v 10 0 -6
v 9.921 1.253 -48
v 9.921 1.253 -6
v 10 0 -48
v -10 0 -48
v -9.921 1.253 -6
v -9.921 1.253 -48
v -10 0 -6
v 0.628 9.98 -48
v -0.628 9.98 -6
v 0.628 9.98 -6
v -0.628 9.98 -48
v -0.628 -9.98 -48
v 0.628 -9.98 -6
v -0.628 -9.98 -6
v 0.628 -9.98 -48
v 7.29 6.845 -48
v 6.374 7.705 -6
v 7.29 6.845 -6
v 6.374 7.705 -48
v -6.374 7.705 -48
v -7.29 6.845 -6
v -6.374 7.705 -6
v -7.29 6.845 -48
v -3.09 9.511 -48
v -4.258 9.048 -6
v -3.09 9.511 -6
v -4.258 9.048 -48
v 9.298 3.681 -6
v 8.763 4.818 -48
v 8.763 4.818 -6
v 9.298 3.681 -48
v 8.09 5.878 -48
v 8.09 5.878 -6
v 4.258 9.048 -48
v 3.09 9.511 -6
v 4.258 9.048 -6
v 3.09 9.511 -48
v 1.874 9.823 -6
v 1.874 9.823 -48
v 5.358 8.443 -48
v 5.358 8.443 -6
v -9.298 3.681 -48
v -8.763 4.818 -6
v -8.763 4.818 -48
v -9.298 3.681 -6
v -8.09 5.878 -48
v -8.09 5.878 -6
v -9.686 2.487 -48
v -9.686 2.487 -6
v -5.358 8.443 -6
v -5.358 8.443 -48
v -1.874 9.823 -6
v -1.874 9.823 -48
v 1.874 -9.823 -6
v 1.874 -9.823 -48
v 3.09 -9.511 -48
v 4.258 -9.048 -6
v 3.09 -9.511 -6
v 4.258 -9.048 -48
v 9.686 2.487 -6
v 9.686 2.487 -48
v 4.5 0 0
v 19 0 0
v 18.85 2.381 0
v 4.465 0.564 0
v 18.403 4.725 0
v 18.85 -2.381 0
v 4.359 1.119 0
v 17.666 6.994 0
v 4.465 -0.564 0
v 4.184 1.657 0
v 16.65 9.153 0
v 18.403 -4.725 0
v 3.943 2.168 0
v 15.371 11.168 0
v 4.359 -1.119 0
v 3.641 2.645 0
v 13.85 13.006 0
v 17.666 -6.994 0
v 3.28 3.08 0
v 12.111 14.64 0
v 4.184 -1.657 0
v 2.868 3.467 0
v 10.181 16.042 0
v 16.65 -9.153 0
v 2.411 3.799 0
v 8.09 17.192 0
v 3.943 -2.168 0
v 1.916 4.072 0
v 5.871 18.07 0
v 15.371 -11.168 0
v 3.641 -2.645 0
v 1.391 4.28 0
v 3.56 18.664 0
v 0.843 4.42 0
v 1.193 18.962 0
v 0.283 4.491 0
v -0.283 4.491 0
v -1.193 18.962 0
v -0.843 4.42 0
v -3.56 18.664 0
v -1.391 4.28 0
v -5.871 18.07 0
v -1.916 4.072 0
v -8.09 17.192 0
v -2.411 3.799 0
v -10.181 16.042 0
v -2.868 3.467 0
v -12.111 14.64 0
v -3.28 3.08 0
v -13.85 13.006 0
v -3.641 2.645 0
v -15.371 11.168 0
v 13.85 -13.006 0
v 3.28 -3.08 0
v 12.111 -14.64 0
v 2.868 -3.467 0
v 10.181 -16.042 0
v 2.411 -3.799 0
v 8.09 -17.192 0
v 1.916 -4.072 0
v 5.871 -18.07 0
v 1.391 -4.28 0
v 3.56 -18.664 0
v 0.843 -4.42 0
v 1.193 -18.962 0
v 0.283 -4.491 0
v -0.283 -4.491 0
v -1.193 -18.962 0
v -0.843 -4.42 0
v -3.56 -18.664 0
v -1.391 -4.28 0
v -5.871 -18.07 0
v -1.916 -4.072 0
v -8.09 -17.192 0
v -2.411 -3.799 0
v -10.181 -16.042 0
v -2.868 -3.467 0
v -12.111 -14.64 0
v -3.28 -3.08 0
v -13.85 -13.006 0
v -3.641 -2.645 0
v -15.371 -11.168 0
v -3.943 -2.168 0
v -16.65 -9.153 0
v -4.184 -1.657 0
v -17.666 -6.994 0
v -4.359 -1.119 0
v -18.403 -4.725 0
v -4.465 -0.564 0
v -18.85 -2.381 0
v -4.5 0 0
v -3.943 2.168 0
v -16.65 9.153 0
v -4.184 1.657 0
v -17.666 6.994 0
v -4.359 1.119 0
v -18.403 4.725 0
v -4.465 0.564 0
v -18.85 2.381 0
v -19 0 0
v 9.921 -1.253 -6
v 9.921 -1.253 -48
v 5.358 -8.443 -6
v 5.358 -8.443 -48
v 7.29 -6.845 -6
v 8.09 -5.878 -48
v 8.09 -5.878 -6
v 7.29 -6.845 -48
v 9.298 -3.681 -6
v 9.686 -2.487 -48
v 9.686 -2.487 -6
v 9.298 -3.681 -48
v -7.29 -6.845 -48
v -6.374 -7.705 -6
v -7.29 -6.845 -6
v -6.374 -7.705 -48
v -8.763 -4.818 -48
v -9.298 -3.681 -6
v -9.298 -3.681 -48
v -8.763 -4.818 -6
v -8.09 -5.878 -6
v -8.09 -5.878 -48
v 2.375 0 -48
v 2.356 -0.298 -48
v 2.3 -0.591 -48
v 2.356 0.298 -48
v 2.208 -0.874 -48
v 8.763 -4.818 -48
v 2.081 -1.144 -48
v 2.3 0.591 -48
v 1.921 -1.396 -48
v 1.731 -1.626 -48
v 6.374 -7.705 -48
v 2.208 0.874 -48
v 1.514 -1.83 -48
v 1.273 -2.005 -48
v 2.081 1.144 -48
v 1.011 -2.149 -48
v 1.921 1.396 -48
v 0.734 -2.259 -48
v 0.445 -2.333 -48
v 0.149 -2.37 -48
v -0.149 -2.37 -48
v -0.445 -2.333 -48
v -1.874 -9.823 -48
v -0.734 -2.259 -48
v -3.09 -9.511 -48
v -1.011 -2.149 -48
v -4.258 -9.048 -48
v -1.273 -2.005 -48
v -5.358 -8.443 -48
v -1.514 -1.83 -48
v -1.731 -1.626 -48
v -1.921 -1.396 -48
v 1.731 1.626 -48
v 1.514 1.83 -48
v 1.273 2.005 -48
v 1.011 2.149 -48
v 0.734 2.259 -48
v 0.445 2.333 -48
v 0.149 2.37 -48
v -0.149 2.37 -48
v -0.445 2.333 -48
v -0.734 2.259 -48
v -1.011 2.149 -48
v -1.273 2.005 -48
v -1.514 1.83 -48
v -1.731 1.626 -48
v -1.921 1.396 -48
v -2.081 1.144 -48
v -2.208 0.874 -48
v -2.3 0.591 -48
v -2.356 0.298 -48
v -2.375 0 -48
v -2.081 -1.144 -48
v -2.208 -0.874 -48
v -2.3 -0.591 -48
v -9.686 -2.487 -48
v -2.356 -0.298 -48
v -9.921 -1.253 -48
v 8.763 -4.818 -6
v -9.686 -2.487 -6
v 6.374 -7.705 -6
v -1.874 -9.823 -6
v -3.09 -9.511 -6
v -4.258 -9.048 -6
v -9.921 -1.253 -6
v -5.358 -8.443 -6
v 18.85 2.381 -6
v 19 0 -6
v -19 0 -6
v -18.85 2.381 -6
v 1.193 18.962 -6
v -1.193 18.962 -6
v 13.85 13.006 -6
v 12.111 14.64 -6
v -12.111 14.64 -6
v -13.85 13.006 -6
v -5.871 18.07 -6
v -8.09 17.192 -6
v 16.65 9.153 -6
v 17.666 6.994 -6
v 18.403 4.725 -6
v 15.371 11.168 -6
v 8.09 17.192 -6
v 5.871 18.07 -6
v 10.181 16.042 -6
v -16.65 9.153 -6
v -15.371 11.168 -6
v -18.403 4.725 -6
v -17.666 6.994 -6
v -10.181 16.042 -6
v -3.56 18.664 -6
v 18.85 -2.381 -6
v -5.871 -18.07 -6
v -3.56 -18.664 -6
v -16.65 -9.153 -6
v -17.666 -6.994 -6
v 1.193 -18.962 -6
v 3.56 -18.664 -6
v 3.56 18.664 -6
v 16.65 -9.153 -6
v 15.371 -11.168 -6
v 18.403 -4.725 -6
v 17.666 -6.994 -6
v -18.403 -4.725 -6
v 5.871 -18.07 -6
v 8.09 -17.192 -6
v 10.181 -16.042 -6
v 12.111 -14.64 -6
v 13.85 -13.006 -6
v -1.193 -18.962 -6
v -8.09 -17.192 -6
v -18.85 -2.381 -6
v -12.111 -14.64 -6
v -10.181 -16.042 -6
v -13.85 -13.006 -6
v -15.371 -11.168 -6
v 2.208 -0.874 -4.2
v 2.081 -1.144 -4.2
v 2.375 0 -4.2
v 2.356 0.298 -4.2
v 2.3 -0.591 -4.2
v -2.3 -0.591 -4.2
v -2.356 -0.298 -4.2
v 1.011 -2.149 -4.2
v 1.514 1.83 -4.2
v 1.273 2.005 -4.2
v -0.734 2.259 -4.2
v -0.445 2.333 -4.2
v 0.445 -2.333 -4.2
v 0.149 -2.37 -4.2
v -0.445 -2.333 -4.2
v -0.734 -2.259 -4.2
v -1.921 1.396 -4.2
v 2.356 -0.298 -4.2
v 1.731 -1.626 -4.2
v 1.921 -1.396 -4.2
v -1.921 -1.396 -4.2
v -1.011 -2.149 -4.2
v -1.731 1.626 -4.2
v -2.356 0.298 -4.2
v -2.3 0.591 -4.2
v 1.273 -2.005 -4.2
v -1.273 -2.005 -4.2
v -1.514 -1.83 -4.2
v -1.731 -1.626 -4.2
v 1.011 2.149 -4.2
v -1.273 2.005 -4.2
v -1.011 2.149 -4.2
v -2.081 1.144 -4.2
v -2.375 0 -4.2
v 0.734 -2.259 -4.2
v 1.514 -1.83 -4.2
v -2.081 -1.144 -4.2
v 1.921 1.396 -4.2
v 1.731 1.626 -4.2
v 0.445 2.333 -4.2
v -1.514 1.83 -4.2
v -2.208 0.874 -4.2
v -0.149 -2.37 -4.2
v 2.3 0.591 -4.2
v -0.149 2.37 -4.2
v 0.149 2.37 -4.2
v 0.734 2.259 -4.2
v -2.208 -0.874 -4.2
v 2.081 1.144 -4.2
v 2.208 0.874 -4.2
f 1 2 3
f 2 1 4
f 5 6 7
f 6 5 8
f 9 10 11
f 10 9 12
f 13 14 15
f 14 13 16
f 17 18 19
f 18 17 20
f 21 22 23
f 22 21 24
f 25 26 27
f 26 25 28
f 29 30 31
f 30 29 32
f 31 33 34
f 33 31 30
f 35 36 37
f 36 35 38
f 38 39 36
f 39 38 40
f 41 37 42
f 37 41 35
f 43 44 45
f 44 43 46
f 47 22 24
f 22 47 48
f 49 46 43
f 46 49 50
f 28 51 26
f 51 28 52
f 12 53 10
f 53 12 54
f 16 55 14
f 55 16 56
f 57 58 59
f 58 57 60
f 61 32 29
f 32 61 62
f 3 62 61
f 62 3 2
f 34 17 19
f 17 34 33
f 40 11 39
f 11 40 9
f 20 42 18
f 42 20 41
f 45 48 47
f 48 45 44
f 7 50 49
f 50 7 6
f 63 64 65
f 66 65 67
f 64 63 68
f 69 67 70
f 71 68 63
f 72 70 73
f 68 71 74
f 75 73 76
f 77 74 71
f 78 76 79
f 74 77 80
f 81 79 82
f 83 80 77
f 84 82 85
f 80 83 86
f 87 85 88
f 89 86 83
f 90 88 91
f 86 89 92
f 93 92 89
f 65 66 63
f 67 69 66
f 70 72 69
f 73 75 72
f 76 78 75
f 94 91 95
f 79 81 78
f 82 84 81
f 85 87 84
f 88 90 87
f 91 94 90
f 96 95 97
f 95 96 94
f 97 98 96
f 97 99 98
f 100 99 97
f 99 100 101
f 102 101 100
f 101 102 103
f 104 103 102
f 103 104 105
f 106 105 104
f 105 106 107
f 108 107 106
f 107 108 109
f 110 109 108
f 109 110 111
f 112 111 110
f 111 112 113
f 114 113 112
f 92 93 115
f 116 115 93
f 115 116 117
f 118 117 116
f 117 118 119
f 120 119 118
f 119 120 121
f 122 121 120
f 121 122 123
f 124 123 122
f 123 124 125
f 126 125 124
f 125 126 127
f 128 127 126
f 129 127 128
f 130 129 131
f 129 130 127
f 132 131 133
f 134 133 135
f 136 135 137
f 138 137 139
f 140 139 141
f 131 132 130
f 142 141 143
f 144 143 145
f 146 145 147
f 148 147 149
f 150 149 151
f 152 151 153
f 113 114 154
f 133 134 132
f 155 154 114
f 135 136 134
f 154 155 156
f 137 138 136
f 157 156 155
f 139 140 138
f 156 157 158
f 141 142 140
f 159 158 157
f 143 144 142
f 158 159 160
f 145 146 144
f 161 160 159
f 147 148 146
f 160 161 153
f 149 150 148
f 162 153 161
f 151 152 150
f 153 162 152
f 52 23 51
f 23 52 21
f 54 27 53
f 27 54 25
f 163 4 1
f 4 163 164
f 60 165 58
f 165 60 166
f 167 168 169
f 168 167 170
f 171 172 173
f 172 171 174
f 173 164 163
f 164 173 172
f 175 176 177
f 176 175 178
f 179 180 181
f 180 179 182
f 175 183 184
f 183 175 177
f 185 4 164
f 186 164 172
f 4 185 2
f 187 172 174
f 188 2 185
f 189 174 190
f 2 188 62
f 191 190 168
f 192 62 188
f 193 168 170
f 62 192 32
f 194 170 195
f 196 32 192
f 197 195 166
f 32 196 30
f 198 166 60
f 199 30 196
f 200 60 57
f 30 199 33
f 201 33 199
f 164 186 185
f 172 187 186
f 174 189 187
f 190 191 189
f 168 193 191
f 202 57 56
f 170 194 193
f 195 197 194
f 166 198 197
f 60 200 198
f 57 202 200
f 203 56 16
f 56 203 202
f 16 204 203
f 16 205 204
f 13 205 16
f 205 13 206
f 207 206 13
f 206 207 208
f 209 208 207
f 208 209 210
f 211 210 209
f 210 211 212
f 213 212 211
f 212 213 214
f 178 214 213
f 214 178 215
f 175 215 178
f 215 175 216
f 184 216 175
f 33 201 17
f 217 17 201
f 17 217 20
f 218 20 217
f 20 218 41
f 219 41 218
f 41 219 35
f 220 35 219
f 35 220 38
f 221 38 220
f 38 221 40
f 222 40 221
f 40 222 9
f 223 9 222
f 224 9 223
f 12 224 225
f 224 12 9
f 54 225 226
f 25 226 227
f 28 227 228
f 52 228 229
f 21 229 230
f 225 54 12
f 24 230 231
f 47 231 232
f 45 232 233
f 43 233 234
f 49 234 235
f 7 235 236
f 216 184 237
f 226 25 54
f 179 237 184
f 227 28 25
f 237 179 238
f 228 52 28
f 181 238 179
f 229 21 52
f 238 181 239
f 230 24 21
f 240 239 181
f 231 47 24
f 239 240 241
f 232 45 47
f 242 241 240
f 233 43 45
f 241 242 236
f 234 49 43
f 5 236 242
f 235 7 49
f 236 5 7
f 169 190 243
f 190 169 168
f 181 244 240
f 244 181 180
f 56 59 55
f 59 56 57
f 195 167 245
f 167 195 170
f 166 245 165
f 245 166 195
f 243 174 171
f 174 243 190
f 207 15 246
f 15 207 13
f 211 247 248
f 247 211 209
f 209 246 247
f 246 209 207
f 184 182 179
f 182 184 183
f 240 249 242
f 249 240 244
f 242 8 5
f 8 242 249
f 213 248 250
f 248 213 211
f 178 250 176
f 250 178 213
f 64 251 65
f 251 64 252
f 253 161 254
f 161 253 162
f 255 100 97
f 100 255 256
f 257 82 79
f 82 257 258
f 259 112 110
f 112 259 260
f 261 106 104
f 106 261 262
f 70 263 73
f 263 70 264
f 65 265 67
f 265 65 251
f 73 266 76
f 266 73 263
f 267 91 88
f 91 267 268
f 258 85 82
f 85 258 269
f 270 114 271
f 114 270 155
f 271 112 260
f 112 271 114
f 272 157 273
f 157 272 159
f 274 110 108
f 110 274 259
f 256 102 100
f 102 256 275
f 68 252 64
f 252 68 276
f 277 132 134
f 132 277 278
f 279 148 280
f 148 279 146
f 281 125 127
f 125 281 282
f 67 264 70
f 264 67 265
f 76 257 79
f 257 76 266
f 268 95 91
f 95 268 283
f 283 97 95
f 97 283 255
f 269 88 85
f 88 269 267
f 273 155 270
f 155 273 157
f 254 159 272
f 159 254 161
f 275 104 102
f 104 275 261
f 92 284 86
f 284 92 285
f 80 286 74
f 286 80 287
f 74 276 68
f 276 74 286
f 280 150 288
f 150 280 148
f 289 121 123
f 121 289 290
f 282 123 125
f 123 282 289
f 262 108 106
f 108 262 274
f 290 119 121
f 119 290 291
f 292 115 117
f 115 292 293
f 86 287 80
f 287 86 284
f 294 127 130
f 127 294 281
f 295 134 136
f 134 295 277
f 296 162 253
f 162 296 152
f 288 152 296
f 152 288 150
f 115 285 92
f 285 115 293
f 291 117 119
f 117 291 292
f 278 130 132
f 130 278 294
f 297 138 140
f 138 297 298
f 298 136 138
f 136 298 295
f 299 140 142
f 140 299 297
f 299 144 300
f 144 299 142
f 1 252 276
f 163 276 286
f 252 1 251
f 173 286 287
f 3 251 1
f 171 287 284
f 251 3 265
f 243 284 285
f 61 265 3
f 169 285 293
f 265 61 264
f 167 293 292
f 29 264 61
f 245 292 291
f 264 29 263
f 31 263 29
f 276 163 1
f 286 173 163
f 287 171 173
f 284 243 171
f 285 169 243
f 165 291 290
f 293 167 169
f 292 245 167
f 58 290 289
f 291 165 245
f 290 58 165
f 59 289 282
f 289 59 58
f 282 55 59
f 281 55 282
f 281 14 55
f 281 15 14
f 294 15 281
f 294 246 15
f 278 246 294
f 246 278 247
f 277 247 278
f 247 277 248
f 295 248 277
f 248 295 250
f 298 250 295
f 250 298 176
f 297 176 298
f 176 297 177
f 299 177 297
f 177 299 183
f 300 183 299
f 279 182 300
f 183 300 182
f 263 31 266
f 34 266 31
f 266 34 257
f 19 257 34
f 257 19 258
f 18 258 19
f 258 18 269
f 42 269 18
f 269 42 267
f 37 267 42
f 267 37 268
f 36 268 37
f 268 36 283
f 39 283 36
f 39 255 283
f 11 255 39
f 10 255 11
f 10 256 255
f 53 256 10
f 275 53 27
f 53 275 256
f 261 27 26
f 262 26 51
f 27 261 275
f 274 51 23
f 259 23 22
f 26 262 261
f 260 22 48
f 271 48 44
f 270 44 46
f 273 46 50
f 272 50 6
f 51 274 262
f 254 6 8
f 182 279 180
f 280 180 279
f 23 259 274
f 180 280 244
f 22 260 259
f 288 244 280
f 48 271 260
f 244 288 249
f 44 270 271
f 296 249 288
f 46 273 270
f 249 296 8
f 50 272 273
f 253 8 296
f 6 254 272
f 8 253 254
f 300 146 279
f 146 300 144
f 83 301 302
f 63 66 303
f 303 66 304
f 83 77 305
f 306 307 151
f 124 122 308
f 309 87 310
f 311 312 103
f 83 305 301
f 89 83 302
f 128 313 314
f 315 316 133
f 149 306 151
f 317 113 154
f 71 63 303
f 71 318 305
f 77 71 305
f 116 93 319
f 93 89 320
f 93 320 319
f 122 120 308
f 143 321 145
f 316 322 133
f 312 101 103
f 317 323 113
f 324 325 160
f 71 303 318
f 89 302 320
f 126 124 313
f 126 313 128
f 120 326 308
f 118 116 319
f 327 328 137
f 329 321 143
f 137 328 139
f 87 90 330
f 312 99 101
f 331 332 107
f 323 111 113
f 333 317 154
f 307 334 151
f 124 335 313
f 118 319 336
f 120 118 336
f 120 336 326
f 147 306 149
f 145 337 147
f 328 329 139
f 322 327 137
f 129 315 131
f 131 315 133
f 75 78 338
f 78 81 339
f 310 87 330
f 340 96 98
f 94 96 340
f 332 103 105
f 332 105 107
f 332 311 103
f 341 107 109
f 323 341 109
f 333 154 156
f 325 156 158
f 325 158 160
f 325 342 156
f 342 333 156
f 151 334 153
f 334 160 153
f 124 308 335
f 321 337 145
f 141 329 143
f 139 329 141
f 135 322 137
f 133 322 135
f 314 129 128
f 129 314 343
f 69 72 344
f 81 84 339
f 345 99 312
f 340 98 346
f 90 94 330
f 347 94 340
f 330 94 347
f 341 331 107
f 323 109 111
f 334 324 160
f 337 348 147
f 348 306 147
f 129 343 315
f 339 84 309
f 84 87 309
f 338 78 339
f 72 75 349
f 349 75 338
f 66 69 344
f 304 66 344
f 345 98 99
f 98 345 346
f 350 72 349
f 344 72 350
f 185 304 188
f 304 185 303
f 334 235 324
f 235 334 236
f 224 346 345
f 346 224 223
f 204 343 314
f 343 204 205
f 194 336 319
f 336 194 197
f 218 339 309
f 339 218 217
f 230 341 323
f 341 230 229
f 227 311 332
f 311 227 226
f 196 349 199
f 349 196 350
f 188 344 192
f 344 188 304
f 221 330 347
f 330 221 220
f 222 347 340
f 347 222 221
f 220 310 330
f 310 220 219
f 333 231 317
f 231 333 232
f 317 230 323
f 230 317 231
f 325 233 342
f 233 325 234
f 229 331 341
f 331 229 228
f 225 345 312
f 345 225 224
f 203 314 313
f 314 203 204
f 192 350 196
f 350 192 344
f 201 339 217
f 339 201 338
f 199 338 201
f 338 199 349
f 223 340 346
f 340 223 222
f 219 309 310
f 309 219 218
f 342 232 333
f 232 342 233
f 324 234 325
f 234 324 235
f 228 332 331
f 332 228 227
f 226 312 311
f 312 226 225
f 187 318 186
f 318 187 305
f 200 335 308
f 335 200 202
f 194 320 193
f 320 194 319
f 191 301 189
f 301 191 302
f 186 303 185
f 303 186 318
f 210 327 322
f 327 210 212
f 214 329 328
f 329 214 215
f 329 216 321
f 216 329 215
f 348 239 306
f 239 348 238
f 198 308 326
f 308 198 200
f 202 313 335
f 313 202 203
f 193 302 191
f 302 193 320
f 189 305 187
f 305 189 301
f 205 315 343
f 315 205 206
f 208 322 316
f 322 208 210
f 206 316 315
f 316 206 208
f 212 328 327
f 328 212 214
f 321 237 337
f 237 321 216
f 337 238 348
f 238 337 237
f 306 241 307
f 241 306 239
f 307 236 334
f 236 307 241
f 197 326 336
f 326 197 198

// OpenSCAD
$fn = 50;


difference() {
	union() {
		translate(v = [0, 0, -48.0000000000]) {
			cylinder(h = 48, r = 10.0000000000);
		}
		translate(v = [0, 0, -6.0000000000]) {
			cylinder(h = 6, r = 19.0000000000);
		}
	}
	union() {
		translate(v = [0, 0, 0]) {
			rotate(a = [0, 0, 0]) {
				difference() {
					union() {
						#translate(v = [0, 0, -48.0000000000]) {
							cylinder(h = 48, r = 2.2500000000);
						}
						#translate(v = [0, 0, -4.2000000000]) {
							cylinder(h = 4.2000000000, r = 10.0000000000, r1 = 2.3750000000, r2 = 4.5000000000);
						}
						#translate(v = [0, 0, -48.0000000000]) {
							cylinder(h = 48, r = 2.3750000000);
						}
						#translate(v = [0, 0, -48.0000000000]) {
							cylinder(h = 48, r = 2.2500000000);
						}
					}
					union();
				}
			}
		}
	}
}
